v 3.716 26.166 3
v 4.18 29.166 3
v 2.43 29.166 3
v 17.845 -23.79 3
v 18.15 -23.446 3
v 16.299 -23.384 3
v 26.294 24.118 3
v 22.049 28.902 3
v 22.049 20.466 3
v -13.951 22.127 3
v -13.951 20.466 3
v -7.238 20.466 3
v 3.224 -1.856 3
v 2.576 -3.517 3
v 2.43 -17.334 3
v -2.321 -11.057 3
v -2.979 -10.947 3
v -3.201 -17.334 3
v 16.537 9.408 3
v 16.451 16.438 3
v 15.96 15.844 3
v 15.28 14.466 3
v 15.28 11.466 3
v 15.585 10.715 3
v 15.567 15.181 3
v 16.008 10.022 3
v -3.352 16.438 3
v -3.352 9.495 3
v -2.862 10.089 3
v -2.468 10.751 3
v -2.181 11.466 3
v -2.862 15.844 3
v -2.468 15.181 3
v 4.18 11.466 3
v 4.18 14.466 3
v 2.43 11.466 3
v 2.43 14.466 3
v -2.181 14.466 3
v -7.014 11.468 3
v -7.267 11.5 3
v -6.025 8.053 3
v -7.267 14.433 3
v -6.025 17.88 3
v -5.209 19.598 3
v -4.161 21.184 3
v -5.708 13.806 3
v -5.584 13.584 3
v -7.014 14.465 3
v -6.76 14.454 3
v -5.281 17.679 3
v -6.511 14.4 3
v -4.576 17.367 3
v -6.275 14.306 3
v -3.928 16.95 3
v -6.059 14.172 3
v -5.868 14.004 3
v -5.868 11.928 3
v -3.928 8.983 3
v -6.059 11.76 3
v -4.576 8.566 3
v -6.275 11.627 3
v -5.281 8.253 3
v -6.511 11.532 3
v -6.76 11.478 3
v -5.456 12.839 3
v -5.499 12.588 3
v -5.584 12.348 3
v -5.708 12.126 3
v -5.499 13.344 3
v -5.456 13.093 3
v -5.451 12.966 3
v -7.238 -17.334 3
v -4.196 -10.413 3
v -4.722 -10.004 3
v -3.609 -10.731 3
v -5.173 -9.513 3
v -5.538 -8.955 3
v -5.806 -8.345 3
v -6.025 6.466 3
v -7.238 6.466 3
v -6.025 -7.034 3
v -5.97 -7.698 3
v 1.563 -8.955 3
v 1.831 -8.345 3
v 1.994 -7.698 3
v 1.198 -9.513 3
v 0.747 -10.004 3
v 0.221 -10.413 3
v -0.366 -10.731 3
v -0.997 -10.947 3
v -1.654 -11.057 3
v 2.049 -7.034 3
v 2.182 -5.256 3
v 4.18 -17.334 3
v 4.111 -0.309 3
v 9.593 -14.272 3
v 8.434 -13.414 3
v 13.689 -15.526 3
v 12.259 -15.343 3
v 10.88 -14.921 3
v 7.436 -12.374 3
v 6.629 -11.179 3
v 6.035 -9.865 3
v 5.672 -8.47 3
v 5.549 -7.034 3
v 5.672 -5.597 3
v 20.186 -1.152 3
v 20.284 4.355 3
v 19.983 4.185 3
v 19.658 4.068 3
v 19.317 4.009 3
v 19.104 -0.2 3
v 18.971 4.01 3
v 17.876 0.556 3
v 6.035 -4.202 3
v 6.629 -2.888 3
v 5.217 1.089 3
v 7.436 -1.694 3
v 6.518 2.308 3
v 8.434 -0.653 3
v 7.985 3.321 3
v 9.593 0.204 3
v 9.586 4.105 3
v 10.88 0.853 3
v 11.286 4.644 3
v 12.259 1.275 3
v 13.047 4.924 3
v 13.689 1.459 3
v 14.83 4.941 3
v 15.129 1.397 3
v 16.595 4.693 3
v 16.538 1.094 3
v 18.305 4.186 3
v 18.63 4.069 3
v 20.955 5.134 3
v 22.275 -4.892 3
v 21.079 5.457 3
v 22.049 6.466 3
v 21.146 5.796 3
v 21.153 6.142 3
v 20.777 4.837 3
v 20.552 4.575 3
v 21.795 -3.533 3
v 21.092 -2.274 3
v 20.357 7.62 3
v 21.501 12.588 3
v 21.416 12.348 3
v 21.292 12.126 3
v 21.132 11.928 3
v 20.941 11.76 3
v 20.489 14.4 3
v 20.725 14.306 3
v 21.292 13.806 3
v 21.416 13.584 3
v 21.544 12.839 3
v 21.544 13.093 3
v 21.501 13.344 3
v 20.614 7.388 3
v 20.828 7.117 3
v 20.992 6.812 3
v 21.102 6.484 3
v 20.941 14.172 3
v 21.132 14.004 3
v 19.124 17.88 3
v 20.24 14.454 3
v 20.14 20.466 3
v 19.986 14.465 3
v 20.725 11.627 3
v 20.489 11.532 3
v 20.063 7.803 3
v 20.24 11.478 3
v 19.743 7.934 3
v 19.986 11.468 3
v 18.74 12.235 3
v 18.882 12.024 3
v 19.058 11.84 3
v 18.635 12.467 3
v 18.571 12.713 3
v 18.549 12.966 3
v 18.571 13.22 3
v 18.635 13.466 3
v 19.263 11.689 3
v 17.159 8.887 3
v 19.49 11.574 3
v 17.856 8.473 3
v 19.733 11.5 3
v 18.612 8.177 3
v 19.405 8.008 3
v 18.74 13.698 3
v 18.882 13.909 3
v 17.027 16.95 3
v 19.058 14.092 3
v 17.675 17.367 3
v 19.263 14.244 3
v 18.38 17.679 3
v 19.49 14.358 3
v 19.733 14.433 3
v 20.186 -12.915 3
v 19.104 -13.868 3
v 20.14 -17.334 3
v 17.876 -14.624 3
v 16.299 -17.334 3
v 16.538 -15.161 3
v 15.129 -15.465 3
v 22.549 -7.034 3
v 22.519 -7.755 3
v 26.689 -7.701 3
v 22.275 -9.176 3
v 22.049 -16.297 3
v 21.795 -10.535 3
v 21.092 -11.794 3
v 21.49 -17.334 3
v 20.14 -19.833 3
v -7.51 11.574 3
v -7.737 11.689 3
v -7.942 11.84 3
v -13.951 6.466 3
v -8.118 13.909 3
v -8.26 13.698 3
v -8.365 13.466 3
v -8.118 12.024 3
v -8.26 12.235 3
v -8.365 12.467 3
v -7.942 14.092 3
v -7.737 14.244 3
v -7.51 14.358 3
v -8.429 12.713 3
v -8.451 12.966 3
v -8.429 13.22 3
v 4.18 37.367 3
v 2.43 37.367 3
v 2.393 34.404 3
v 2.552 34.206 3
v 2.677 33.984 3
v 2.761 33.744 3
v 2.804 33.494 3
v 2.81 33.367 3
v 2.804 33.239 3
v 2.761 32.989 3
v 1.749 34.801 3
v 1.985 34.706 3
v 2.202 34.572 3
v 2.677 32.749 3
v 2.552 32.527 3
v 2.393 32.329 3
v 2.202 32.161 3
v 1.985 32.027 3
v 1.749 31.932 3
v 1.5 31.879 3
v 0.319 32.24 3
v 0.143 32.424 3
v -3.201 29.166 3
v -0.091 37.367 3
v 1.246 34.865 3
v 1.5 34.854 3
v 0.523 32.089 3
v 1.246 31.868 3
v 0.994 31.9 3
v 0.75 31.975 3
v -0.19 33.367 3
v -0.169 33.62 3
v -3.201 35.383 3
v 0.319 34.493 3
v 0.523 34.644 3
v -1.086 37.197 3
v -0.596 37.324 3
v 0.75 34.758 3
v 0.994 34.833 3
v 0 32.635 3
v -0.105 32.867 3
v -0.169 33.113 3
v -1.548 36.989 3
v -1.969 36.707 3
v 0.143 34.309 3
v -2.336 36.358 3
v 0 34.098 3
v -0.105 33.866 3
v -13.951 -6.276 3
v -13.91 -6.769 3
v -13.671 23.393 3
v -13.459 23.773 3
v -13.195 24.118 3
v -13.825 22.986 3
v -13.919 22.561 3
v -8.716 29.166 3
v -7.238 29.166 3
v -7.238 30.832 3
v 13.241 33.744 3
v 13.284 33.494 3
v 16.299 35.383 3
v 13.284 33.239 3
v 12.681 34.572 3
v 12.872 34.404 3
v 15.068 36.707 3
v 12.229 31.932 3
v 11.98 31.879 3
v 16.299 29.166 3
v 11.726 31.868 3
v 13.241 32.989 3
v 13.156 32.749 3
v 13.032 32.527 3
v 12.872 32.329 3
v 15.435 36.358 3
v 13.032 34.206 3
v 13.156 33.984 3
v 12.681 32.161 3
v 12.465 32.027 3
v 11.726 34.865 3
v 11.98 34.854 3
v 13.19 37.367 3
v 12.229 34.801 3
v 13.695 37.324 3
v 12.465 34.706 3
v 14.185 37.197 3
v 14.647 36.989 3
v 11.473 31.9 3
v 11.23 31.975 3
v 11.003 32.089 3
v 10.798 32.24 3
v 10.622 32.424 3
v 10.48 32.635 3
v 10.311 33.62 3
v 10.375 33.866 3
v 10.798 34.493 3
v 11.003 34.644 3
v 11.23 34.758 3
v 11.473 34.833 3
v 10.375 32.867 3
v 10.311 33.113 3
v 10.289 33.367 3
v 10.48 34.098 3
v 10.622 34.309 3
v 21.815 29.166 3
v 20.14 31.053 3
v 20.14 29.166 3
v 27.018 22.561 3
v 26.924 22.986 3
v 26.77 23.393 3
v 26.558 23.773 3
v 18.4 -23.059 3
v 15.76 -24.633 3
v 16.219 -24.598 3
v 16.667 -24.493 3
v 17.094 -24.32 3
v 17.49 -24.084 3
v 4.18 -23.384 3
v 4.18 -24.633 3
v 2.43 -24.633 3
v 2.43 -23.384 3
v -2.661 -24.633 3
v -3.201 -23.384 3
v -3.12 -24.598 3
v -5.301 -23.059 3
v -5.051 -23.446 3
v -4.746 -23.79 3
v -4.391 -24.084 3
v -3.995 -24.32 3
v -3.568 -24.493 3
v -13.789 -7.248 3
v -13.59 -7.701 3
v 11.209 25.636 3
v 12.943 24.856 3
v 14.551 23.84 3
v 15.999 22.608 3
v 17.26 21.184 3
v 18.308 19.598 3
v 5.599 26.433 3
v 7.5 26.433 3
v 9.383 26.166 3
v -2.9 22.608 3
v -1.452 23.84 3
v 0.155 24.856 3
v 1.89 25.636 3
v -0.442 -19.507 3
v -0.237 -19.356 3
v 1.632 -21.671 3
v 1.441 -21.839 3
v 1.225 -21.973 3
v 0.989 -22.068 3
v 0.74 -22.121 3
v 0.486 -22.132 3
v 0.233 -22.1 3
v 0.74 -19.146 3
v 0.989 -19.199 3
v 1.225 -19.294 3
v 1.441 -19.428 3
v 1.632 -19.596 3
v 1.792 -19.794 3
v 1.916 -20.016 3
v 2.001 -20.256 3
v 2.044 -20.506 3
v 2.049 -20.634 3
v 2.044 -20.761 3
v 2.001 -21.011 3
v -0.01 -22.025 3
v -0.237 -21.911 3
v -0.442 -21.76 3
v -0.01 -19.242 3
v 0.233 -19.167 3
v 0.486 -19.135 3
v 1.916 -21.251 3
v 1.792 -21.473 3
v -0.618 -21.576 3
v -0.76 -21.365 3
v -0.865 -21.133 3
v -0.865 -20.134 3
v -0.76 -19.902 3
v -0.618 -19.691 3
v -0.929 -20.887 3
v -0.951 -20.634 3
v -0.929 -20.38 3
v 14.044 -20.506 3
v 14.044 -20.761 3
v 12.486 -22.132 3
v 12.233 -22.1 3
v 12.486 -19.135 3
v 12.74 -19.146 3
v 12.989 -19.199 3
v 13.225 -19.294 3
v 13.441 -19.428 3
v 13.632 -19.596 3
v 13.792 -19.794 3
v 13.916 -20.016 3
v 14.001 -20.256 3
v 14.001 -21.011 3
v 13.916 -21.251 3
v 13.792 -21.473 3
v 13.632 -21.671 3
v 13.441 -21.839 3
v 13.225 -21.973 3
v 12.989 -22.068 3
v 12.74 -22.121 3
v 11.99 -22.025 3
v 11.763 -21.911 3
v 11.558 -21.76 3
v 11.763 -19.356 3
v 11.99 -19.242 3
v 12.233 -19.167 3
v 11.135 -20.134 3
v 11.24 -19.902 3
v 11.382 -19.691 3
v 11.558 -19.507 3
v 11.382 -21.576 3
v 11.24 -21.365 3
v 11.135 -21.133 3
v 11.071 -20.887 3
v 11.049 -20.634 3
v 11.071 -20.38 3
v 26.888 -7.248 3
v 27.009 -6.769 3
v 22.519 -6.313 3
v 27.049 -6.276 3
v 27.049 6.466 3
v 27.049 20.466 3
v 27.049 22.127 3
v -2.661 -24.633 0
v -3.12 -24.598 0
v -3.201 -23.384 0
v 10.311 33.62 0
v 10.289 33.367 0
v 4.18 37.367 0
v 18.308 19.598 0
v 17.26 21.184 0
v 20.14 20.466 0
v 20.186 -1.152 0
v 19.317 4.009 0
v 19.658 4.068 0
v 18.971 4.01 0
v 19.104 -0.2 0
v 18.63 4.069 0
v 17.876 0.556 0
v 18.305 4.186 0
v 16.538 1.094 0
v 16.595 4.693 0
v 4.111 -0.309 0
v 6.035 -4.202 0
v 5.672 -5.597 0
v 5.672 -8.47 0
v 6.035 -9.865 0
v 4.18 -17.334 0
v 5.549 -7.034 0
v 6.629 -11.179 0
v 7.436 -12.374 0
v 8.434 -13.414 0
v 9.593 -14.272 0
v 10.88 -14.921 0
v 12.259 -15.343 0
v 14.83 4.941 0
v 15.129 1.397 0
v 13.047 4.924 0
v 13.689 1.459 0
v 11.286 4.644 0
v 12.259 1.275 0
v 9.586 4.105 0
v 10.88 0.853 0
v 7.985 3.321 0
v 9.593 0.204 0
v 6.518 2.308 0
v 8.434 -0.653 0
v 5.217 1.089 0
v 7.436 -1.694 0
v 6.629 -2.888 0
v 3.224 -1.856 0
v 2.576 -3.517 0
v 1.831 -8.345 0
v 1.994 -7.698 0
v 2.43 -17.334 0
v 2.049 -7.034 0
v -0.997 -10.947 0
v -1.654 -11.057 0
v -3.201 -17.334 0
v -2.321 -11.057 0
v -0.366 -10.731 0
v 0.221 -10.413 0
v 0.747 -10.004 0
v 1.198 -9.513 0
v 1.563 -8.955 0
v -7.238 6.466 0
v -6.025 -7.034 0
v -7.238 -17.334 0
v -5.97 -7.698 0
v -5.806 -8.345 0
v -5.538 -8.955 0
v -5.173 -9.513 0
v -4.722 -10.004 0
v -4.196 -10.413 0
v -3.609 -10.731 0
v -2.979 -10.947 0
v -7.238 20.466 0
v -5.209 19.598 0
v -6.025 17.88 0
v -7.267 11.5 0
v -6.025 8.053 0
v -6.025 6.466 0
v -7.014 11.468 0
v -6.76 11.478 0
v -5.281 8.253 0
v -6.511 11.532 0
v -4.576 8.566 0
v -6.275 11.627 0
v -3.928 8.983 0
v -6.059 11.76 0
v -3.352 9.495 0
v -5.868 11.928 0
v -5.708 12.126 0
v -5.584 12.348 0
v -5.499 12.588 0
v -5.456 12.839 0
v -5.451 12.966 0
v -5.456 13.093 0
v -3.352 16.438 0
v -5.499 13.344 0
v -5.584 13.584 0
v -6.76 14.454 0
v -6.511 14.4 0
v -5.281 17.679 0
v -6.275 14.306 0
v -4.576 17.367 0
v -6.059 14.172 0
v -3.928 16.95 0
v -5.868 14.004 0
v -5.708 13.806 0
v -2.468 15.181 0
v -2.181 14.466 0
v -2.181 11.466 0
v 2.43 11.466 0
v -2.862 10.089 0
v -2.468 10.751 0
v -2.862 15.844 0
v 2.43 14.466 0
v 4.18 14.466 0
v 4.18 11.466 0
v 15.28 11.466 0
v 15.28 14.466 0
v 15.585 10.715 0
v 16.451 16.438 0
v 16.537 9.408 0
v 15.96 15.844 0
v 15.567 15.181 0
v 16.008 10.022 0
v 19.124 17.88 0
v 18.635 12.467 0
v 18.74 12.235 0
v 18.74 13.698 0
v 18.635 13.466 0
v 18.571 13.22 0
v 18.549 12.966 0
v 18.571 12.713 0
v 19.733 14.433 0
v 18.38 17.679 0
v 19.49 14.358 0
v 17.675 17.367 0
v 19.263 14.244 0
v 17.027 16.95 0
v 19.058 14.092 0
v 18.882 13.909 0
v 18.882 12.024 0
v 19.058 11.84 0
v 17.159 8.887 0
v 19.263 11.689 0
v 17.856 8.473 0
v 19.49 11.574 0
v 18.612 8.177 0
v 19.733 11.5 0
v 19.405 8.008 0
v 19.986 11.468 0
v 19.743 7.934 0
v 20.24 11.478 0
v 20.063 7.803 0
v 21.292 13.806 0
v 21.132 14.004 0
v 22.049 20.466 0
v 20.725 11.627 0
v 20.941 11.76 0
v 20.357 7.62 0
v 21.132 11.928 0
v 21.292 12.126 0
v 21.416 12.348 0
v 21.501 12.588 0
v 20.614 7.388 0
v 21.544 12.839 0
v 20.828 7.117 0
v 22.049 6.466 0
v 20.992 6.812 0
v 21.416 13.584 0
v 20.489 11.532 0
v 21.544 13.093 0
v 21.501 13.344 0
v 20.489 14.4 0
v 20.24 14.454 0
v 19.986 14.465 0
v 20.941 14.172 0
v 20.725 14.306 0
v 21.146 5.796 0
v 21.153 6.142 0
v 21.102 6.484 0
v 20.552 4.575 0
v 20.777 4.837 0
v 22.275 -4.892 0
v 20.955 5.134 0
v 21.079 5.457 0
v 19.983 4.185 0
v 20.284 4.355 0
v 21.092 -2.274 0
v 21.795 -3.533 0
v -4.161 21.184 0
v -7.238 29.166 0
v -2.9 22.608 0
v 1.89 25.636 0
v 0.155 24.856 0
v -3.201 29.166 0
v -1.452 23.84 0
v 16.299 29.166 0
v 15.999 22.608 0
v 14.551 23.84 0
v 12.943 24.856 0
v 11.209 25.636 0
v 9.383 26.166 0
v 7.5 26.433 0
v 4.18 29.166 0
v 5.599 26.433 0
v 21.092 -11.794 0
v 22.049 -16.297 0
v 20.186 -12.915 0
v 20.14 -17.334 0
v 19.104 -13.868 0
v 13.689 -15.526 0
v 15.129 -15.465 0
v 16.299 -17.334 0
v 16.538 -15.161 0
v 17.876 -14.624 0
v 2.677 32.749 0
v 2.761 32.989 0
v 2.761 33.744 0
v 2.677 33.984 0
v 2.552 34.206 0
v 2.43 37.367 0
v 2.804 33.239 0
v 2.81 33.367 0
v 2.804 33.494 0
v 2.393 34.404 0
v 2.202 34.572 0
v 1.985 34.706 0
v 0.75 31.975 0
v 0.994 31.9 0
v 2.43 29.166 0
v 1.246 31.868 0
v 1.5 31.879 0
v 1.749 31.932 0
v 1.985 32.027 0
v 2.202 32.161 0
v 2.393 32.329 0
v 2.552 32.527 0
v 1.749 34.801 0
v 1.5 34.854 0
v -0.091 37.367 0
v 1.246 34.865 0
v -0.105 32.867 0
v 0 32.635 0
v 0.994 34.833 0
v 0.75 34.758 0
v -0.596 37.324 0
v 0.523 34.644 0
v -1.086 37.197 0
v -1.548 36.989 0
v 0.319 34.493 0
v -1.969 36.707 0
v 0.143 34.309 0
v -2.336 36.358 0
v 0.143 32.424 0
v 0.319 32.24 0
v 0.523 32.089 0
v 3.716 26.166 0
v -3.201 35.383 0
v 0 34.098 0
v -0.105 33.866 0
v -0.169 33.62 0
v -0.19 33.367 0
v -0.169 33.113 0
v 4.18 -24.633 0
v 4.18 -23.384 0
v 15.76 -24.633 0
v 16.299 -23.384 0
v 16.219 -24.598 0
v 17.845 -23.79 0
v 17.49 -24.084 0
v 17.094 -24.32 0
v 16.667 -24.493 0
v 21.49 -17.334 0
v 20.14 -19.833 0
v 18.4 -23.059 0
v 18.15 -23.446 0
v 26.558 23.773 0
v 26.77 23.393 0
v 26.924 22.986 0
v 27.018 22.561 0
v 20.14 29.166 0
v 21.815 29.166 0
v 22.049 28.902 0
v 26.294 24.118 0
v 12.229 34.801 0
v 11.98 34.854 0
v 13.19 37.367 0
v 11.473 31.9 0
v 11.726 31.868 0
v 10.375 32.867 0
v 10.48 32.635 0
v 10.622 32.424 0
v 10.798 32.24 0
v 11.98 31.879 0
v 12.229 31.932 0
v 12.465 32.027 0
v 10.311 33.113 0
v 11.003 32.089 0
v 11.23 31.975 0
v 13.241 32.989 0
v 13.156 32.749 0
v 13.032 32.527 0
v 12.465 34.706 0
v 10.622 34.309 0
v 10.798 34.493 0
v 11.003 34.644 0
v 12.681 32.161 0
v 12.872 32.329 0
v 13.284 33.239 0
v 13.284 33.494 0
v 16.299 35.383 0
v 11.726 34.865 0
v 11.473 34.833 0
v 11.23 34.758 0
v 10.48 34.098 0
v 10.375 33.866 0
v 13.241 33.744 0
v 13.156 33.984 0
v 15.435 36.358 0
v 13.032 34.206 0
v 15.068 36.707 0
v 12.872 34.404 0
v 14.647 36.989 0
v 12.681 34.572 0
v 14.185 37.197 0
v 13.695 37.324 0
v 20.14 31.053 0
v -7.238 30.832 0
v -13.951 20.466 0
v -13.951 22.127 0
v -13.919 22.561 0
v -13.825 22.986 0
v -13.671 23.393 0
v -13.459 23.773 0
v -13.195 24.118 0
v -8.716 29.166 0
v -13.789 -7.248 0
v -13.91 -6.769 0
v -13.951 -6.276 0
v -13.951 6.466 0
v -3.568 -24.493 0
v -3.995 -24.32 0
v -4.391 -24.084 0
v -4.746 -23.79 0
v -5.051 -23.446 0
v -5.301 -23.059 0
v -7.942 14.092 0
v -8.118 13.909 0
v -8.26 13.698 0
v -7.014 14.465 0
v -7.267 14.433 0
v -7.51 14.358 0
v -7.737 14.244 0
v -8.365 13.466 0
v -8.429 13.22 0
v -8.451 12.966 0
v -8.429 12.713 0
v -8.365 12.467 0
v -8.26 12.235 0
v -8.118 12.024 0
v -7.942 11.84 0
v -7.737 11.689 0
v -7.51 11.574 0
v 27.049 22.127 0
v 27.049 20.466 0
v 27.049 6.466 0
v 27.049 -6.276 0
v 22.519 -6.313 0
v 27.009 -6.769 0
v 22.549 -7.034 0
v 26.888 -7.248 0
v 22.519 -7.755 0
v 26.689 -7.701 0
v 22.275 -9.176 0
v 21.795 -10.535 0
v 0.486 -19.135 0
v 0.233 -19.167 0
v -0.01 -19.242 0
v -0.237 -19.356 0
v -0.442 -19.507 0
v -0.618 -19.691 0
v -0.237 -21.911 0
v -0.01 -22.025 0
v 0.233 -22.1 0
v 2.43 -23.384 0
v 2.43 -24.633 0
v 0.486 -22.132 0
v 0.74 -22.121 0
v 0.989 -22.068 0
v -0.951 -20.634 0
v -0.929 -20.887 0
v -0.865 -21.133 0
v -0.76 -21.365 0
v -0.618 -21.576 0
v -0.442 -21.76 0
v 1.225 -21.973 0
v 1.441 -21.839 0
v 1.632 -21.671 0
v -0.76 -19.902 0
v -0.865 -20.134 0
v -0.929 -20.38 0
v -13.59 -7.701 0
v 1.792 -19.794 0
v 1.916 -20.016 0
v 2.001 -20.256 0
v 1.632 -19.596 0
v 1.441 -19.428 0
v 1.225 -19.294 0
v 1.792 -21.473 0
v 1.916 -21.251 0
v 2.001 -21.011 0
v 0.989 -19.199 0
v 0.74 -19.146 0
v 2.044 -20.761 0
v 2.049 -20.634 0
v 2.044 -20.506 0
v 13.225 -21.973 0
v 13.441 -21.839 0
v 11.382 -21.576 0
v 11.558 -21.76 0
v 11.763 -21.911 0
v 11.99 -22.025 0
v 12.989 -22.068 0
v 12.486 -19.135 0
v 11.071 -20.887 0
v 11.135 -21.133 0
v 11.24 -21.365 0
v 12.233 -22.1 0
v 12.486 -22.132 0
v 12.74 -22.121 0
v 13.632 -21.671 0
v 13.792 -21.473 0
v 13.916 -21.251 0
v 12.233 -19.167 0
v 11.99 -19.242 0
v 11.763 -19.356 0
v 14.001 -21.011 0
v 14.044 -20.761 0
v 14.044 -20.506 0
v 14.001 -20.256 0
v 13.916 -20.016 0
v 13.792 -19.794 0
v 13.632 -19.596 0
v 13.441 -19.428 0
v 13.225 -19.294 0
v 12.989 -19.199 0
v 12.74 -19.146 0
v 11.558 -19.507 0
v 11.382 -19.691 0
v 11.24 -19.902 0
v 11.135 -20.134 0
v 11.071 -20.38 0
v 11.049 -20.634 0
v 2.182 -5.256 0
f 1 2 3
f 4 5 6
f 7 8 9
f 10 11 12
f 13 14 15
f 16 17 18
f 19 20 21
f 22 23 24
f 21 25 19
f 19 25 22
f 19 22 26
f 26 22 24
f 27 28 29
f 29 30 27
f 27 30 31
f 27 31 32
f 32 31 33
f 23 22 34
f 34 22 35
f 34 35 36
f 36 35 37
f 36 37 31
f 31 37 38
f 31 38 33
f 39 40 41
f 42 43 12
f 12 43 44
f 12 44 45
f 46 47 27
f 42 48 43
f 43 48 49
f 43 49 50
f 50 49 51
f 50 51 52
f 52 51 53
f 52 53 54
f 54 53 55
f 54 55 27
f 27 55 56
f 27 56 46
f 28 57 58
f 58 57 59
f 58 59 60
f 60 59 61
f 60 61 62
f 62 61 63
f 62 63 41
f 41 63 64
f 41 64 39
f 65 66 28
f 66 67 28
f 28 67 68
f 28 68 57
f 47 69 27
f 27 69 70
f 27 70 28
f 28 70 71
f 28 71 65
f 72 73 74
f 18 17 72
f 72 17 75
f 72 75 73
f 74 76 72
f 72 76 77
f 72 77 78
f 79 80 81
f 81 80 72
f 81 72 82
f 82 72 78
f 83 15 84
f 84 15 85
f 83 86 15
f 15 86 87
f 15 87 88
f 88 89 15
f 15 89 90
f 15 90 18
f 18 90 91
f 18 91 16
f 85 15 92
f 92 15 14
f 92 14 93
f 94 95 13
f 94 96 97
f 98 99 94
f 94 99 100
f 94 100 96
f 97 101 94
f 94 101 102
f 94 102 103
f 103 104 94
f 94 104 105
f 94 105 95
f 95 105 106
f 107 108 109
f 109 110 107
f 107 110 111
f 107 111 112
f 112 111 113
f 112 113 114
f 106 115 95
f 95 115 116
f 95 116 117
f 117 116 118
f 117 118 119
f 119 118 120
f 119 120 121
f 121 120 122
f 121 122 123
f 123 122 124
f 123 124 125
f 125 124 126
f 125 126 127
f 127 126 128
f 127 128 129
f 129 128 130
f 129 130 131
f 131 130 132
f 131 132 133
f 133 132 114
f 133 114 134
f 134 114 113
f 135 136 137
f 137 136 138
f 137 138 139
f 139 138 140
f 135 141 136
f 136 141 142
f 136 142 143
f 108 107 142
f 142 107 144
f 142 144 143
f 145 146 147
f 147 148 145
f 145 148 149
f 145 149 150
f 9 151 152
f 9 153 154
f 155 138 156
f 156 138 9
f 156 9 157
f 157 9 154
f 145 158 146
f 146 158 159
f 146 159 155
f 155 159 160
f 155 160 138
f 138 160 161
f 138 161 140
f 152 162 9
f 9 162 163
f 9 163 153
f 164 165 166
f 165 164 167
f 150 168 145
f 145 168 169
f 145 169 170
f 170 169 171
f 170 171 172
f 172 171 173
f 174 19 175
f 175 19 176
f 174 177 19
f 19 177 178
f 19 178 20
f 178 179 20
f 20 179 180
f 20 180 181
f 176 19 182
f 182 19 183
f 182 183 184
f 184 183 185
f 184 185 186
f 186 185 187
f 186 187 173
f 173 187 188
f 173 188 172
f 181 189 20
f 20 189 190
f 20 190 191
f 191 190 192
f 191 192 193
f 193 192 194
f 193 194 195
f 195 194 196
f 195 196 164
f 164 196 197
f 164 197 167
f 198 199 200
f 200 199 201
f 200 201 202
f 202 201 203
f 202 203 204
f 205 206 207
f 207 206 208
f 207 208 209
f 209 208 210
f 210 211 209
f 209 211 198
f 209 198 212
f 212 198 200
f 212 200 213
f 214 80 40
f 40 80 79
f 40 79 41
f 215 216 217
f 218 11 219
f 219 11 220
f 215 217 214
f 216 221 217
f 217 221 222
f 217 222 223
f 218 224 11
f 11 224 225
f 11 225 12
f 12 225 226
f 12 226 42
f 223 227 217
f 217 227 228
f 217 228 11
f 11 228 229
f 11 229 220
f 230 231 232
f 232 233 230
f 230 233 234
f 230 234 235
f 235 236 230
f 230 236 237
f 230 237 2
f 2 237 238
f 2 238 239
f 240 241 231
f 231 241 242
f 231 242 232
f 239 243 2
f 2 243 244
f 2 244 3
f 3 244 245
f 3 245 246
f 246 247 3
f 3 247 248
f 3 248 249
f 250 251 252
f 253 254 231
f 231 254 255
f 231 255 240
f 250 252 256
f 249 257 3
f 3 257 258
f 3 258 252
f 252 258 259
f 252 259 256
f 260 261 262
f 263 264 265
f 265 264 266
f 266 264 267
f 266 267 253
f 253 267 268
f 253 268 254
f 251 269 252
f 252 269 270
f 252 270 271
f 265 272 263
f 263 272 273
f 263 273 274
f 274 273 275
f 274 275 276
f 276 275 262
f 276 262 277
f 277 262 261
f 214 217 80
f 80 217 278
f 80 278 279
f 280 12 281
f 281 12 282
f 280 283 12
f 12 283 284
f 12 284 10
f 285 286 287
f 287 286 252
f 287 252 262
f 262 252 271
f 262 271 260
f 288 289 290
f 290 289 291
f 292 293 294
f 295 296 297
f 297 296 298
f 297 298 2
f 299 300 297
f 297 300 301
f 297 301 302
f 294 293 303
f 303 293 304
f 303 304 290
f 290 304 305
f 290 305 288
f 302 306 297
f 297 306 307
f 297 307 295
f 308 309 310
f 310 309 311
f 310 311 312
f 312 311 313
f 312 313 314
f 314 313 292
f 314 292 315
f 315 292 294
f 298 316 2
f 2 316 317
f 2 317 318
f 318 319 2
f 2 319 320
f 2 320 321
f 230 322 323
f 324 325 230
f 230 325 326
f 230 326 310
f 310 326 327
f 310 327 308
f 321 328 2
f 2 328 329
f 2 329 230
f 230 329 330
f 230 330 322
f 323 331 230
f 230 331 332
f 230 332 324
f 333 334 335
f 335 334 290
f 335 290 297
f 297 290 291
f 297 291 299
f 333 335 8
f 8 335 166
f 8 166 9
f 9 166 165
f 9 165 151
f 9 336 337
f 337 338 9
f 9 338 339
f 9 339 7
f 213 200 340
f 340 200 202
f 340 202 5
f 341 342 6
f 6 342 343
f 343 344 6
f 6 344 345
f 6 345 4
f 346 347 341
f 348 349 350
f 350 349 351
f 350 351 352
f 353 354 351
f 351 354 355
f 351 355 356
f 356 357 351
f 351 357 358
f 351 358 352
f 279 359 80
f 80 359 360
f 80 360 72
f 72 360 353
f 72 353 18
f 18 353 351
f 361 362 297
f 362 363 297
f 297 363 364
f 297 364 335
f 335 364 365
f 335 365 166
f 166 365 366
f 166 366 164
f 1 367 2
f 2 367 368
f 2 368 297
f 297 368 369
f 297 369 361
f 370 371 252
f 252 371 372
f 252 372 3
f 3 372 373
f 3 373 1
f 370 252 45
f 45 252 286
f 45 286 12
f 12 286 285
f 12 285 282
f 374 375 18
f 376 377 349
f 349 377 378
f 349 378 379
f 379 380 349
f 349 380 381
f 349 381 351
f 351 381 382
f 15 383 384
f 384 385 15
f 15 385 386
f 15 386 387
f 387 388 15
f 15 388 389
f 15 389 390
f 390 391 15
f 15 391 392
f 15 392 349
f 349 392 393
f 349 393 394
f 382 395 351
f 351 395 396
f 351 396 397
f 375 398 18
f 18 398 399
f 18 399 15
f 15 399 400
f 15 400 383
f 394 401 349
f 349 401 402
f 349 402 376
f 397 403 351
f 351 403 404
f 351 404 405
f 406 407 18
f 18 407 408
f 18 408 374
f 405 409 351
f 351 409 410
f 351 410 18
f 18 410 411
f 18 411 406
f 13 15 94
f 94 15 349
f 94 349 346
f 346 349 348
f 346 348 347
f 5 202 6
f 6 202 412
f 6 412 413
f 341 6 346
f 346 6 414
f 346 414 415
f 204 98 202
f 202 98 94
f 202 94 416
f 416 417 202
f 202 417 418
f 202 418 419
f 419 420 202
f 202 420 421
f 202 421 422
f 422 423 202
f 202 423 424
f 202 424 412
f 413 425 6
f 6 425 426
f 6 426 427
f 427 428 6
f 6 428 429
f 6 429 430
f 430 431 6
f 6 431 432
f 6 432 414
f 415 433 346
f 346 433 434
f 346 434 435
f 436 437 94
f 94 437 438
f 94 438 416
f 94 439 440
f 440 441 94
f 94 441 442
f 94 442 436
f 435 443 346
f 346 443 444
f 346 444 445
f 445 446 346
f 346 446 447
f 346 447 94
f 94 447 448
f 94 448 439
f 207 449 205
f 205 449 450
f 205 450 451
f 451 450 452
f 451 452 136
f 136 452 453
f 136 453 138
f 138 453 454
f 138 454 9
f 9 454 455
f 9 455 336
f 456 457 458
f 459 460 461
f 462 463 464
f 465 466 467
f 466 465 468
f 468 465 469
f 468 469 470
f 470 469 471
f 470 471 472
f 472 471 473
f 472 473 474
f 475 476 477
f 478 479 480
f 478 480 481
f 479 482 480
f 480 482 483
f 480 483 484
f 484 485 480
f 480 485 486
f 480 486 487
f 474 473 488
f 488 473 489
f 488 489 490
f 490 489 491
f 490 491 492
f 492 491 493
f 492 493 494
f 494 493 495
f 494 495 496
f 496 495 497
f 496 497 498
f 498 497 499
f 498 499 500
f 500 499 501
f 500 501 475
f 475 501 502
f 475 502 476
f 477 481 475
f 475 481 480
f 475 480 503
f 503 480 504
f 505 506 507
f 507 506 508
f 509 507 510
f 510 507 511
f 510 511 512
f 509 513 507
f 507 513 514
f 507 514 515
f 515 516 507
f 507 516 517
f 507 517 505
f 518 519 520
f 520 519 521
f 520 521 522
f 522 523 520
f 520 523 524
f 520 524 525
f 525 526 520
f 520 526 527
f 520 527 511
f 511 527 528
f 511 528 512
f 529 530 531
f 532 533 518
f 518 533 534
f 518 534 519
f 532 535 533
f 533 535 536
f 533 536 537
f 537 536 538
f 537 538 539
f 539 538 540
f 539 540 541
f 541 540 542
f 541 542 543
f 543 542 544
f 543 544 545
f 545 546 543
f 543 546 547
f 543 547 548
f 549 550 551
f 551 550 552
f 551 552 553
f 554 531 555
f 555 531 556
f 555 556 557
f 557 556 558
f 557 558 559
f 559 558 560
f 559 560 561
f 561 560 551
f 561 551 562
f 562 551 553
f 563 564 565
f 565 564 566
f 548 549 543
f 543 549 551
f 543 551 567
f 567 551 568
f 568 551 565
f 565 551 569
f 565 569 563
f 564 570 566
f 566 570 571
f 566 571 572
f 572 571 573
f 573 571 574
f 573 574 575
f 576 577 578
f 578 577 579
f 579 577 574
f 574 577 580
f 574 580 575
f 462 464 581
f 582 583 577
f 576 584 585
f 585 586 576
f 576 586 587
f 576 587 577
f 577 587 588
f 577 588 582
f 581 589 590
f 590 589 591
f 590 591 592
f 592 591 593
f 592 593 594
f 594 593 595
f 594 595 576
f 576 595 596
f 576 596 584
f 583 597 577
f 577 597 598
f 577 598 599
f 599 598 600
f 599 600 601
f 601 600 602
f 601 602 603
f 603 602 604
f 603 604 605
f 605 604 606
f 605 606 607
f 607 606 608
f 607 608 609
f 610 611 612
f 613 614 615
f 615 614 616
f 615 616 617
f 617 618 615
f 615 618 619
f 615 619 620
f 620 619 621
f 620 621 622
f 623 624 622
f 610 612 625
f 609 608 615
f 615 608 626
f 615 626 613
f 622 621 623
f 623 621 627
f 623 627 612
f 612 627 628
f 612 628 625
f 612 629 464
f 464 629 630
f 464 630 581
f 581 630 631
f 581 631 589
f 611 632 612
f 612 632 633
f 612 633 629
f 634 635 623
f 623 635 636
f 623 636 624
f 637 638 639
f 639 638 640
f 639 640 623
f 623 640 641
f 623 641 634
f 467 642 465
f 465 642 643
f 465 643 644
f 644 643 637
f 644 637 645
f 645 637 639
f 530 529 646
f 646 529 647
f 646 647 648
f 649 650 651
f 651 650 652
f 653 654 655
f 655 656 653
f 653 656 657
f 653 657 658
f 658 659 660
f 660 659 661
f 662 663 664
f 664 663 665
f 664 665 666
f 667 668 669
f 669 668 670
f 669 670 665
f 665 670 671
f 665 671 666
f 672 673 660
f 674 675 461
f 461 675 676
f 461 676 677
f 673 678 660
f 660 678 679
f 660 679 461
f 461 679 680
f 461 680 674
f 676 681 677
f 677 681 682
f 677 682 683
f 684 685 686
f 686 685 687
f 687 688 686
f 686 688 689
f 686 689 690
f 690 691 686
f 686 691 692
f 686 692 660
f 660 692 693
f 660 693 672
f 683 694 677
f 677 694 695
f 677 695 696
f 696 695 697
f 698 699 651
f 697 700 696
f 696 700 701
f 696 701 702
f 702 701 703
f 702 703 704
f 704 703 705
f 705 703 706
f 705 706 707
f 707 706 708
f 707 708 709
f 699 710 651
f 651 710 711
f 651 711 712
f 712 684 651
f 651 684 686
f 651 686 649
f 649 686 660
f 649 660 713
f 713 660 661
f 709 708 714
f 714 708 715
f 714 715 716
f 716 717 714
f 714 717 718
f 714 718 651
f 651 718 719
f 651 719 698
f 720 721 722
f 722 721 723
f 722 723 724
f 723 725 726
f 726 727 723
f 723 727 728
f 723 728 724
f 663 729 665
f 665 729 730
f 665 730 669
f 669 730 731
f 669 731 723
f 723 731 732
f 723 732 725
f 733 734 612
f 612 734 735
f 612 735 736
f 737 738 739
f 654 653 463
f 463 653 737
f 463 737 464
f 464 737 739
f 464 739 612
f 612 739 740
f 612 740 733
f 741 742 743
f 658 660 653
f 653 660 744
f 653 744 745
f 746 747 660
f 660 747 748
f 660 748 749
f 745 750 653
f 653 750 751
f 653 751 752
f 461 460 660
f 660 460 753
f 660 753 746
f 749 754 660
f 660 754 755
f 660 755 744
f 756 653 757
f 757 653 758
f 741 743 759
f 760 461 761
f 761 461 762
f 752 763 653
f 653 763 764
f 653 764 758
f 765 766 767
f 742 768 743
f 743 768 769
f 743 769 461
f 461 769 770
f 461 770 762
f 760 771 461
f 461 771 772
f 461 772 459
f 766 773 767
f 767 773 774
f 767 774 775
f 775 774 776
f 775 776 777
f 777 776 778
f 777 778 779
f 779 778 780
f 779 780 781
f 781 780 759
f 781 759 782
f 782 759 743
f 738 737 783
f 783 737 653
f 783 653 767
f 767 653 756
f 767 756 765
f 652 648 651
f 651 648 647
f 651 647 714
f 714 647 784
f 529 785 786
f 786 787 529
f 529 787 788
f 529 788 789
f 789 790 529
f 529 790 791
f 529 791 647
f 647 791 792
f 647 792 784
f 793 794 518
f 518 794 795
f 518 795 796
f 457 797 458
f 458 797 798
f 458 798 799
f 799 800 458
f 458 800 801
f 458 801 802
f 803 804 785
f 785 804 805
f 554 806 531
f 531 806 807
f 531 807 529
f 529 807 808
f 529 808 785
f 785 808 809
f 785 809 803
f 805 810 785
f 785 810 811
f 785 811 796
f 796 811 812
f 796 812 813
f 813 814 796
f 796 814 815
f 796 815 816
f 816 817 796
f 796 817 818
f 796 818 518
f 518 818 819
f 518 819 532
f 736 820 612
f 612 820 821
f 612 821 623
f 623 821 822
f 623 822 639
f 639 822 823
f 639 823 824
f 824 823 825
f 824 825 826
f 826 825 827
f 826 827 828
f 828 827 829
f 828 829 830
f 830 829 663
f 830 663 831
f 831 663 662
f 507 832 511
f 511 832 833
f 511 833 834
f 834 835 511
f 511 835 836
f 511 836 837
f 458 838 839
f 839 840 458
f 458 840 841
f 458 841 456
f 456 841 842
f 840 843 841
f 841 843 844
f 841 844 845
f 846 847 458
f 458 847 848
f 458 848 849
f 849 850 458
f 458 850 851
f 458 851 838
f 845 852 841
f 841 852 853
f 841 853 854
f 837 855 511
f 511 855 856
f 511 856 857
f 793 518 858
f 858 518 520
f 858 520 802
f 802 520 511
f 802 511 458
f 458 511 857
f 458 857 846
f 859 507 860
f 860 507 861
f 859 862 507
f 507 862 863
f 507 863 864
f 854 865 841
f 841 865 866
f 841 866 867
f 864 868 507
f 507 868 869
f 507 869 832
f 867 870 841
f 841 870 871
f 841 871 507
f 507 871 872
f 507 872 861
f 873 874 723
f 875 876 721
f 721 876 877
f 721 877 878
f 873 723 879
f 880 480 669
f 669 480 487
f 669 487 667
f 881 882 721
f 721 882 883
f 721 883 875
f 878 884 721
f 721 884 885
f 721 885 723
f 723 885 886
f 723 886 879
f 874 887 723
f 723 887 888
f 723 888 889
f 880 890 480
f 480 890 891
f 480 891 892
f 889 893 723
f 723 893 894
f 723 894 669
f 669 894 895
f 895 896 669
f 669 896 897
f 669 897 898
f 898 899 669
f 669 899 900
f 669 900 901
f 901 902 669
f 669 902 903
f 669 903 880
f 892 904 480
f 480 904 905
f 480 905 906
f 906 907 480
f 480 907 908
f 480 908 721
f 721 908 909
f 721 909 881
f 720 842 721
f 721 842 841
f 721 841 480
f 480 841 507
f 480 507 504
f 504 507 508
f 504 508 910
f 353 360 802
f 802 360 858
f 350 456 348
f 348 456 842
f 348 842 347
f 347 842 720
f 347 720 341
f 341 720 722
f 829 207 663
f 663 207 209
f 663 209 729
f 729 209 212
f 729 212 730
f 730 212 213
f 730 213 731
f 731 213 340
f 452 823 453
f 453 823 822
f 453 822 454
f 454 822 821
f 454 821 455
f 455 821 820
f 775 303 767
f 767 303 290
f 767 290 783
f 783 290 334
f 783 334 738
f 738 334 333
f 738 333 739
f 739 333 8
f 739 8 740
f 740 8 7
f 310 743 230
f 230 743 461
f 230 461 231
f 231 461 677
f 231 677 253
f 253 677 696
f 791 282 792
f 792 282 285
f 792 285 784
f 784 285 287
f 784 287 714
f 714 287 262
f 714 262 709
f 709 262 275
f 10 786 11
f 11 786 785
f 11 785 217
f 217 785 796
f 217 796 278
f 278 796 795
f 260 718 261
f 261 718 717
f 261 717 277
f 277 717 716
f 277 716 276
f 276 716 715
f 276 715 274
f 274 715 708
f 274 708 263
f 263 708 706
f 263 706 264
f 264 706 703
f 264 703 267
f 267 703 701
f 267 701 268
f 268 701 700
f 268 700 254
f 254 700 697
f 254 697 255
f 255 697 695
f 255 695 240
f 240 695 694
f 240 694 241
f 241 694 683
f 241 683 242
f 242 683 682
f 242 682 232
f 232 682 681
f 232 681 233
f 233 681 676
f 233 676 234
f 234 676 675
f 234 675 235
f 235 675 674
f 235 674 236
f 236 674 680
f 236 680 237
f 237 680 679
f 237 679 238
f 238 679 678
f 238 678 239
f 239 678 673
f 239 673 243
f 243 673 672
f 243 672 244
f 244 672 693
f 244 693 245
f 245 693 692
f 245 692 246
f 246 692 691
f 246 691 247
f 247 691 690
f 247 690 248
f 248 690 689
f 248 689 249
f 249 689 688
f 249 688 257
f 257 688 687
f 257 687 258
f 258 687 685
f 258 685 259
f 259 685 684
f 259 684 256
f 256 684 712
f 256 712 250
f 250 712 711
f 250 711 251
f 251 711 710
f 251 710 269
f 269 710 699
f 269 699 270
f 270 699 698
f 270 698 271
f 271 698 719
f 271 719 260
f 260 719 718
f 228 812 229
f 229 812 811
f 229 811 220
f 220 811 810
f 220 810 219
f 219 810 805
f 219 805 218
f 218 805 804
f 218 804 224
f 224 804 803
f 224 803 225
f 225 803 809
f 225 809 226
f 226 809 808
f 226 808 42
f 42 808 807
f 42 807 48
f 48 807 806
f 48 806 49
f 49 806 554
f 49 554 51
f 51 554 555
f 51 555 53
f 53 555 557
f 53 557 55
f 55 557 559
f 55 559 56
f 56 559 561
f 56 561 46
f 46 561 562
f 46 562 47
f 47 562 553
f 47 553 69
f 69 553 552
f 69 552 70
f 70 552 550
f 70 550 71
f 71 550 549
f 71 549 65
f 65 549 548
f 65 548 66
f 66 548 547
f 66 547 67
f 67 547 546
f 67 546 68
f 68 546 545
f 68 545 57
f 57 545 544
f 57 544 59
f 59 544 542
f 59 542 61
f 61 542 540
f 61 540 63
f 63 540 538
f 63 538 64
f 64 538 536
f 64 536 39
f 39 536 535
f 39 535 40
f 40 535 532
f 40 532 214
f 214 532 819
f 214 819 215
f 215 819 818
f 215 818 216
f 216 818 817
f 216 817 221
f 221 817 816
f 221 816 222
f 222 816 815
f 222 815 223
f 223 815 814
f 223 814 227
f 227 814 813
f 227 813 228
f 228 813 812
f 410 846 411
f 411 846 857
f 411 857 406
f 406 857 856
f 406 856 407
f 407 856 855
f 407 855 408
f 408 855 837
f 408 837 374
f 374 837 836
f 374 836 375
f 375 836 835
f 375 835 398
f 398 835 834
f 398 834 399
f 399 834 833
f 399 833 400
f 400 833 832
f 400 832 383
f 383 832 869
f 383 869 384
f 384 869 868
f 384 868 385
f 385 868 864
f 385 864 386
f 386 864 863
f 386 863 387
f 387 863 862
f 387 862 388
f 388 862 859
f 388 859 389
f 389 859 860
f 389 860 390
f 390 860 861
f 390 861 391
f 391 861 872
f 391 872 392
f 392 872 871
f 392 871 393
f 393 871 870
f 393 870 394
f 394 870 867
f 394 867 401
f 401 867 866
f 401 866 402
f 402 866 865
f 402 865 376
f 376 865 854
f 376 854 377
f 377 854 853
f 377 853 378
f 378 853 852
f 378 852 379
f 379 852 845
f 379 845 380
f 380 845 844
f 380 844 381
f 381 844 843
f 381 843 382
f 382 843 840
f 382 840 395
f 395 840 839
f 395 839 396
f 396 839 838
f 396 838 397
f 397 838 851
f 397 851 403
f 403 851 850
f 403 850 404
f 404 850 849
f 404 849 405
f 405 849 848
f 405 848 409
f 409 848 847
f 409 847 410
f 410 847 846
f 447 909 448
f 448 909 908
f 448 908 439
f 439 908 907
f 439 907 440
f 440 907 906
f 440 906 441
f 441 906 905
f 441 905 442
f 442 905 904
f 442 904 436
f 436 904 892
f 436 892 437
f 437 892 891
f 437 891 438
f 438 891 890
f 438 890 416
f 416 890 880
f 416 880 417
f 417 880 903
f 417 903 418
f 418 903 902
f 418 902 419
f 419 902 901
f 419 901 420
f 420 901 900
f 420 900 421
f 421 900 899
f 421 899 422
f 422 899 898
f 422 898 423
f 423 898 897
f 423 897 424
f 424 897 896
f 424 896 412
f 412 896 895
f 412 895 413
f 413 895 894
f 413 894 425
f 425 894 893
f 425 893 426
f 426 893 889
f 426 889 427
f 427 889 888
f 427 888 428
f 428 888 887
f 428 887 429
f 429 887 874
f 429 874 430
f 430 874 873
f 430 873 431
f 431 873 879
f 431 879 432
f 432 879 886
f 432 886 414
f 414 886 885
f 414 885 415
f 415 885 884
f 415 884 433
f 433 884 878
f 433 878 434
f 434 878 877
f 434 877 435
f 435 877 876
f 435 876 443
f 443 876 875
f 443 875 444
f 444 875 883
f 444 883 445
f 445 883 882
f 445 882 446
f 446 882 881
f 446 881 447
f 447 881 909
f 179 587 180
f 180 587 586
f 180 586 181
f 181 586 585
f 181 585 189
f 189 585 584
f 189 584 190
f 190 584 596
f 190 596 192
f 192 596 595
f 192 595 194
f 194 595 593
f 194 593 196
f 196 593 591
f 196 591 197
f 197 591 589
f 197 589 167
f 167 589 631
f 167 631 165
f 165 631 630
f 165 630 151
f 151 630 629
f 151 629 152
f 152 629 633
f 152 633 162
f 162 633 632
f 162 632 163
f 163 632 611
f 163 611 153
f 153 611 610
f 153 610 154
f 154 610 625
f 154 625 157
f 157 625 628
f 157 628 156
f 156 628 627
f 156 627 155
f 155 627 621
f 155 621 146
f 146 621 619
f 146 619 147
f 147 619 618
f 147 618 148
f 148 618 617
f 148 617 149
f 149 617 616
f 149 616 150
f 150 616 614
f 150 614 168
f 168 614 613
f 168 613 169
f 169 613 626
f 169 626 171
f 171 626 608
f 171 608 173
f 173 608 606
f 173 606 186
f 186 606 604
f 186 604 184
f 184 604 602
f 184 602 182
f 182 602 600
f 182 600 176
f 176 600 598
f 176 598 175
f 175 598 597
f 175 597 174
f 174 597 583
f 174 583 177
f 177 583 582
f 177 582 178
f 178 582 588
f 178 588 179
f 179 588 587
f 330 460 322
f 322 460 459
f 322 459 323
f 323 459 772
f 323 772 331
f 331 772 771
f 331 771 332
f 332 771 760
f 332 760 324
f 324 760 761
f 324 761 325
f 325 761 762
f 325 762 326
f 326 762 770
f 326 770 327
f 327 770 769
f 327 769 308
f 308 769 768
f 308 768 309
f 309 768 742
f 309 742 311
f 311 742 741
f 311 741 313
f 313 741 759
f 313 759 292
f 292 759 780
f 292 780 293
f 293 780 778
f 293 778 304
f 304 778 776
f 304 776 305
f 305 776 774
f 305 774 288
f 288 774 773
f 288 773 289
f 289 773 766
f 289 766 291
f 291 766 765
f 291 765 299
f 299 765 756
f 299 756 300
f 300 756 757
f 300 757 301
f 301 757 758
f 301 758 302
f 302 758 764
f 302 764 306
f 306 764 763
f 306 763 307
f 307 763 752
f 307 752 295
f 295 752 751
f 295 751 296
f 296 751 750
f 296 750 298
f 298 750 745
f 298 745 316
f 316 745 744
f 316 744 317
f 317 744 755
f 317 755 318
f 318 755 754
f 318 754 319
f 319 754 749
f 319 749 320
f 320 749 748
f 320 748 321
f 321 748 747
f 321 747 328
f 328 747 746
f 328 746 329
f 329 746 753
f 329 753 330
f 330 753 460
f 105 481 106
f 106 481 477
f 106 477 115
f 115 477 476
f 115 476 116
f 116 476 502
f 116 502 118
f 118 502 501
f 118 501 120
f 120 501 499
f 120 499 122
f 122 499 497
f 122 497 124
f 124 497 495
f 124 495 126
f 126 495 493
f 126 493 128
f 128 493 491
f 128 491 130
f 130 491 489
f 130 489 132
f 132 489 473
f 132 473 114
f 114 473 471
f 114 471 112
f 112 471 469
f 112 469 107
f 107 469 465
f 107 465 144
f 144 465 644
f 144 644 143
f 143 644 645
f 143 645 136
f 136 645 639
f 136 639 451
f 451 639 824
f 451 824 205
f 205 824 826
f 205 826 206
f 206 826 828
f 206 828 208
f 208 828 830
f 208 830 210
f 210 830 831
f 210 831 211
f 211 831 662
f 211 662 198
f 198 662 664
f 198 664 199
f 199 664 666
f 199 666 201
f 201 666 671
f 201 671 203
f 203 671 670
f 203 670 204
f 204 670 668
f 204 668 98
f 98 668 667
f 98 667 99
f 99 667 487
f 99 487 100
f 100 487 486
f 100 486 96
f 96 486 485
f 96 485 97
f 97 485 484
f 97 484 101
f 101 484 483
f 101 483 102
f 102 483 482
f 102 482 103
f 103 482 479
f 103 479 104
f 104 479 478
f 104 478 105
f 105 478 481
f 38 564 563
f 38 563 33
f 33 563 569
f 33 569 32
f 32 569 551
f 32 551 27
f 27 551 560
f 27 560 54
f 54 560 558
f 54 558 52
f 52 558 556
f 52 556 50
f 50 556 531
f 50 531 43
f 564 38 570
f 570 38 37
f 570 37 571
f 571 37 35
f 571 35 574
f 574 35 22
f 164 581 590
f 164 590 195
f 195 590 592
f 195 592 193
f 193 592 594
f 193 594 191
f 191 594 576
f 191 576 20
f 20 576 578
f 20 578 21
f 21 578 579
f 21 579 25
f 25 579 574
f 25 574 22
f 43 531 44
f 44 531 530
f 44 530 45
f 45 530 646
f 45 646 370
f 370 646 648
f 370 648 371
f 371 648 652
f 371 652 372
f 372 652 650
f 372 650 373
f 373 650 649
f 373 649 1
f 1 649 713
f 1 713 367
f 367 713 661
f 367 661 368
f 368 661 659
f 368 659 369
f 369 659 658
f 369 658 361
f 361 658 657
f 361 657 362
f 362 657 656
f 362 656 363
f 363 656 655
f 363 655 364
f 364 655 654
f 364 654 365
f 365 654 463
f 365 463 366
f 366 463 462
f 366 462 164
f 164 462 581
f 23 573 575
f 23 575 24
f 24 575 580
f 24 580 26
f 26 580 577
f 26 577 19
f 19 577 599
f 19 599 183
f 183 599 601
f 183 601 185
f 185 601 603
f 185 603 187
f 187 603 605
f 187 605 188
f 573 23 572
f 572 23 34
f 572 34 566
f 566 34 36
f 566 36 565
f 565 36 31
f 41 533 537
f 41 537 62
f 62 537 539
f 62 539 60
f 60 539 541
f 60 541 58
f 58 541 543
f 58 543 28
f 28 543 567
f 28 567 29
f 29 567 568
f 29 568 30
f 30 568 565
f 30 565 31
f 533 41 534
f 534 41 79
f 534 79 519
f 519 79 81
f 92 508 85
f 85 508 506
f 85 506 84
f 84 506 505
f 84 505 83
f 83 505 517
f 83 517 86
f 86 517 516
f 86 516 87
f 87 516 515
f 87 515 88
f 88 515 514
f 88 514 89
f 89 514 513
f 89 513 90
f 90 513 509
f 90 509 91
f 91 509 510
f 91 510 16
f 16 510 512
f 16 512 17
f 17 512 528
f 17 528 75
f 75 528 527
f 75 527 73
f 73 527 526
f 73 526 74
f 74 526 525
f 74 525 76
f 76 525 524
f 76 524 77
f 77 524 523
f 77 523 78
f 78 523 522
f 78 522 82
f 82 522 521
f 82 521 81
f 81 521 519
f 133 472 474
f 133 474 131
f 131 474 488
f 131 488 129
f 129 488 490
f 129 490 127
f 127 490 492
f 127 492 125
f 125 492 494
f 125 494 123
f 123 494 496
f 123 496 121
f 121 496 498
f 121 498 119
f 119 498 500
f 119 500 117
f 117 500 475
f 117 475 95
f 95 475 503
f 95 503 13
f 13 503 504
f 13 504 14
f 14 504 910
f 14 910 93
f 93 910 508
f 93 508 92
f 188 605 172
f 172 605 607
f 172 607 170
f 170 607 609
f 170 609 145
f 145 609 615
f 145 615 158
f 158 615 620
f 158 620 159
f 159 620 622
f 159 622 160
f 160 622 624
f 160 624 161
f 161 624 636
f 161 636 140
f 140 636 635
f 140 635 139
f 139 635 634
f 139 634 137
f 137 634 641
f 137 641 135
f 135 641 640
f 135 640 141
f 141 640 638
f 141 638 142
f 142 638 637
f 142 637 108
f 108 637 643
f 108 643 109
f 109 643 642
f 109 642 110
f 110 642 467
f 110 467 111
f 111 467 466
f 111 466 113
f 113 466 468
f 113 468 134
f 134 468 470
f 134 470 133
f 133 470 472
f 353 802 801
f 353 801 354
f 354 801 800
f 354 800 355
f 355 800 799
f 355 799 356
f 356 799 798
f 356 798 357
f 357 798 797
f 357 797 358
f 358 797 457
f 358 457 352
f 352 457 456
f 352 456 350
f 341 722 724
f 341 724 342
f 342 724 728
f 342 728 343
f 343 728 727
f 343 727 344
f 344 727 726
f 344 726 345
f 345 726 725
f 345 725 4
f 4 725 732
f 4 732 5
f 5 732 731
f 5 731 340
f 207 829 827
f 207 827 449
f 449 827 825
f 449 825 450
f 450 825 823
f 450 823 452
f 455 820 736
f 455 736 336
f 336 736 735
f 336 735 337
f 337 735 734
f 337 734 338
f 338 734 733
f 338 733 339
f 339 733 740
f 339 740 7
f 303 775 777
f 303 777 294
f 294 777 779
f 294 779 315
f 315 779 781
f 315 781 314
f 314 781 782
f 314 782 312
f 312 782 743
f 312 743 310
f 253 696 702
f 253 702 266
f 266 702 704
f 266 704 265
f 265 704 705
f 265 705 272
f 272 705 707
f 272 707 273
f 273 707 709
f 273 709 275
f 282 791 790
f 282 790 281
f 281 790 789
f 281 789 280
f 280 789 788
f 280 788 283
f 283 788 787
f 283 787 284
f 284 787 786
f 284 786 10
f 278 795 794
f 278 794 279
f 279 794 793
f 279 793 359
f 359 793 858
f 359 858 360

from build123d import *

# Parameters (mm, degrees)
SKETCH2_R           = 1.5
SKETCH2_R_2         = 8.5
BOSS_EXTRUDE2_DEPTH = 3
FILLET1_R           = 3


with BuildPart() as part:
    # Sketch2 → Boss-Extrude2 (new body)
    with BuildSketch(Plane.XY):
        Polygon((17.549495066, -24.63349929), (-4.450504934, -24.63349929), (-13.950504934, -7.033783383), (-13.950504934, 23.266216617), (-1.440329536, 37.36650071), (14.539319668, 37.36650071), (27.049495066, 23.266216617), (27.049495066, -7.033783383), align=None)
        with Locations((1.309670464, 33.36650071)):
            Circle(SKETCH2_R, mode=Mode.SUBTRACT)
        with Locations((-6.950504934, 12.966216617)):
            Circle(SKETCH2_R, mode=Mode.SUBTRACT)
        with Locations((0.549495066, -20.63349929)):
            Circle(SKETCH2_R, mode=Mode.SUBTRACT)
        with Locations(Location((12.549495066, -20.63349929, 0), (0, 0, 180))):
            Circle(SKETCH2_R, mode=Mode.SUBTRACT)
        with Locations(Location((20.049495066, 12.966216617, 0), (0, 0, 180))):
            Circle(SKETCH2_R, mode=Mode.SUBTRACT)
        with Locations(Location((11.789319668, 33.36650071, 0), (0, 0, 180))):
            Circle(SKETCH2_R, mode=Mode.SUBTRACT)
        with Locations((14.049495066, -7.033783383)):
            Circle(SKETCH2_R_2, mode=Mode.SUBTRACT)
        with BuildLine():
            Line((-6.024579008, 8.052698409), (-6.024579008, -7.033783383))
            ThreePointArc((-6.024579008, -7.033783383), (-1.987541971, -11.07082042), (2.049495066, -7.033783383))
            ThreePointArc((2.049495066, -7.033783383), (7.232677945, 2.841995287), (18.304662454, 4.186446138))
            ThreePointArc((18.304662454, 4.186446138), (21.07880608, 5.456718839), (19.40520679, 8.007901115))
            ThreePointArc((19.40520679, 8.007901115), (16.837362911, 9.134479803), (15.279799059, 11.466216617))
            Line((15.279799059, 11.466216617), (-2.180808927, 11.466216617))
            ThreePointArc((-2.180808927, 11.466216617), (-3.63040645, 9.227641212), (-6.024579008, 8.052698409))
        make_face(mode=Mode.SUBTRACT)
        with BuildLine():
            Line((-2.180808927, 14.466216617), (15.279799059, 14.466216617))
            ThreePointArc((15.279799059, 14.466216617), (16.729396583, 16.704792022), (19.12356914, 17.879734825))
            ThreePointArc((19.12356914, 17.879734825), (6.549495066, 26.466216617), (-6.024579008, 17.879734825))
            ThreePointArc((-6.024579008, 17.879734825), (-3.63040645, 16.704792022), (-2.180808927, 14.466216617))
        make_face(mode=Mode.SUBTRACT)
    extrude(amount=BOSS_EXTRUDE2_DEPTH)

    # Fillet1
    fillet1_edges = [part.edges().sort_by_distance(p)[0] for p in [
        (-13.950504934, -7.033783383, 1.5),
        (-13.950504934, 23.266216617, 1.5),
        (-1.440329536, 37.36650071, 1.5),
        (14.539319668, 37.36650071, 1.5),
        (27.049495066, 23.266216617, 1.5),
        (27.049495066, -7.033783383, 1.5),
        (17.549495066, -24.63349929, 1.5),
        (-4.450504934, -24.63349929, 1.5),
    ]]
    fillet(fillet1_edges, radius=FILLET1_R)


solid = part.part
